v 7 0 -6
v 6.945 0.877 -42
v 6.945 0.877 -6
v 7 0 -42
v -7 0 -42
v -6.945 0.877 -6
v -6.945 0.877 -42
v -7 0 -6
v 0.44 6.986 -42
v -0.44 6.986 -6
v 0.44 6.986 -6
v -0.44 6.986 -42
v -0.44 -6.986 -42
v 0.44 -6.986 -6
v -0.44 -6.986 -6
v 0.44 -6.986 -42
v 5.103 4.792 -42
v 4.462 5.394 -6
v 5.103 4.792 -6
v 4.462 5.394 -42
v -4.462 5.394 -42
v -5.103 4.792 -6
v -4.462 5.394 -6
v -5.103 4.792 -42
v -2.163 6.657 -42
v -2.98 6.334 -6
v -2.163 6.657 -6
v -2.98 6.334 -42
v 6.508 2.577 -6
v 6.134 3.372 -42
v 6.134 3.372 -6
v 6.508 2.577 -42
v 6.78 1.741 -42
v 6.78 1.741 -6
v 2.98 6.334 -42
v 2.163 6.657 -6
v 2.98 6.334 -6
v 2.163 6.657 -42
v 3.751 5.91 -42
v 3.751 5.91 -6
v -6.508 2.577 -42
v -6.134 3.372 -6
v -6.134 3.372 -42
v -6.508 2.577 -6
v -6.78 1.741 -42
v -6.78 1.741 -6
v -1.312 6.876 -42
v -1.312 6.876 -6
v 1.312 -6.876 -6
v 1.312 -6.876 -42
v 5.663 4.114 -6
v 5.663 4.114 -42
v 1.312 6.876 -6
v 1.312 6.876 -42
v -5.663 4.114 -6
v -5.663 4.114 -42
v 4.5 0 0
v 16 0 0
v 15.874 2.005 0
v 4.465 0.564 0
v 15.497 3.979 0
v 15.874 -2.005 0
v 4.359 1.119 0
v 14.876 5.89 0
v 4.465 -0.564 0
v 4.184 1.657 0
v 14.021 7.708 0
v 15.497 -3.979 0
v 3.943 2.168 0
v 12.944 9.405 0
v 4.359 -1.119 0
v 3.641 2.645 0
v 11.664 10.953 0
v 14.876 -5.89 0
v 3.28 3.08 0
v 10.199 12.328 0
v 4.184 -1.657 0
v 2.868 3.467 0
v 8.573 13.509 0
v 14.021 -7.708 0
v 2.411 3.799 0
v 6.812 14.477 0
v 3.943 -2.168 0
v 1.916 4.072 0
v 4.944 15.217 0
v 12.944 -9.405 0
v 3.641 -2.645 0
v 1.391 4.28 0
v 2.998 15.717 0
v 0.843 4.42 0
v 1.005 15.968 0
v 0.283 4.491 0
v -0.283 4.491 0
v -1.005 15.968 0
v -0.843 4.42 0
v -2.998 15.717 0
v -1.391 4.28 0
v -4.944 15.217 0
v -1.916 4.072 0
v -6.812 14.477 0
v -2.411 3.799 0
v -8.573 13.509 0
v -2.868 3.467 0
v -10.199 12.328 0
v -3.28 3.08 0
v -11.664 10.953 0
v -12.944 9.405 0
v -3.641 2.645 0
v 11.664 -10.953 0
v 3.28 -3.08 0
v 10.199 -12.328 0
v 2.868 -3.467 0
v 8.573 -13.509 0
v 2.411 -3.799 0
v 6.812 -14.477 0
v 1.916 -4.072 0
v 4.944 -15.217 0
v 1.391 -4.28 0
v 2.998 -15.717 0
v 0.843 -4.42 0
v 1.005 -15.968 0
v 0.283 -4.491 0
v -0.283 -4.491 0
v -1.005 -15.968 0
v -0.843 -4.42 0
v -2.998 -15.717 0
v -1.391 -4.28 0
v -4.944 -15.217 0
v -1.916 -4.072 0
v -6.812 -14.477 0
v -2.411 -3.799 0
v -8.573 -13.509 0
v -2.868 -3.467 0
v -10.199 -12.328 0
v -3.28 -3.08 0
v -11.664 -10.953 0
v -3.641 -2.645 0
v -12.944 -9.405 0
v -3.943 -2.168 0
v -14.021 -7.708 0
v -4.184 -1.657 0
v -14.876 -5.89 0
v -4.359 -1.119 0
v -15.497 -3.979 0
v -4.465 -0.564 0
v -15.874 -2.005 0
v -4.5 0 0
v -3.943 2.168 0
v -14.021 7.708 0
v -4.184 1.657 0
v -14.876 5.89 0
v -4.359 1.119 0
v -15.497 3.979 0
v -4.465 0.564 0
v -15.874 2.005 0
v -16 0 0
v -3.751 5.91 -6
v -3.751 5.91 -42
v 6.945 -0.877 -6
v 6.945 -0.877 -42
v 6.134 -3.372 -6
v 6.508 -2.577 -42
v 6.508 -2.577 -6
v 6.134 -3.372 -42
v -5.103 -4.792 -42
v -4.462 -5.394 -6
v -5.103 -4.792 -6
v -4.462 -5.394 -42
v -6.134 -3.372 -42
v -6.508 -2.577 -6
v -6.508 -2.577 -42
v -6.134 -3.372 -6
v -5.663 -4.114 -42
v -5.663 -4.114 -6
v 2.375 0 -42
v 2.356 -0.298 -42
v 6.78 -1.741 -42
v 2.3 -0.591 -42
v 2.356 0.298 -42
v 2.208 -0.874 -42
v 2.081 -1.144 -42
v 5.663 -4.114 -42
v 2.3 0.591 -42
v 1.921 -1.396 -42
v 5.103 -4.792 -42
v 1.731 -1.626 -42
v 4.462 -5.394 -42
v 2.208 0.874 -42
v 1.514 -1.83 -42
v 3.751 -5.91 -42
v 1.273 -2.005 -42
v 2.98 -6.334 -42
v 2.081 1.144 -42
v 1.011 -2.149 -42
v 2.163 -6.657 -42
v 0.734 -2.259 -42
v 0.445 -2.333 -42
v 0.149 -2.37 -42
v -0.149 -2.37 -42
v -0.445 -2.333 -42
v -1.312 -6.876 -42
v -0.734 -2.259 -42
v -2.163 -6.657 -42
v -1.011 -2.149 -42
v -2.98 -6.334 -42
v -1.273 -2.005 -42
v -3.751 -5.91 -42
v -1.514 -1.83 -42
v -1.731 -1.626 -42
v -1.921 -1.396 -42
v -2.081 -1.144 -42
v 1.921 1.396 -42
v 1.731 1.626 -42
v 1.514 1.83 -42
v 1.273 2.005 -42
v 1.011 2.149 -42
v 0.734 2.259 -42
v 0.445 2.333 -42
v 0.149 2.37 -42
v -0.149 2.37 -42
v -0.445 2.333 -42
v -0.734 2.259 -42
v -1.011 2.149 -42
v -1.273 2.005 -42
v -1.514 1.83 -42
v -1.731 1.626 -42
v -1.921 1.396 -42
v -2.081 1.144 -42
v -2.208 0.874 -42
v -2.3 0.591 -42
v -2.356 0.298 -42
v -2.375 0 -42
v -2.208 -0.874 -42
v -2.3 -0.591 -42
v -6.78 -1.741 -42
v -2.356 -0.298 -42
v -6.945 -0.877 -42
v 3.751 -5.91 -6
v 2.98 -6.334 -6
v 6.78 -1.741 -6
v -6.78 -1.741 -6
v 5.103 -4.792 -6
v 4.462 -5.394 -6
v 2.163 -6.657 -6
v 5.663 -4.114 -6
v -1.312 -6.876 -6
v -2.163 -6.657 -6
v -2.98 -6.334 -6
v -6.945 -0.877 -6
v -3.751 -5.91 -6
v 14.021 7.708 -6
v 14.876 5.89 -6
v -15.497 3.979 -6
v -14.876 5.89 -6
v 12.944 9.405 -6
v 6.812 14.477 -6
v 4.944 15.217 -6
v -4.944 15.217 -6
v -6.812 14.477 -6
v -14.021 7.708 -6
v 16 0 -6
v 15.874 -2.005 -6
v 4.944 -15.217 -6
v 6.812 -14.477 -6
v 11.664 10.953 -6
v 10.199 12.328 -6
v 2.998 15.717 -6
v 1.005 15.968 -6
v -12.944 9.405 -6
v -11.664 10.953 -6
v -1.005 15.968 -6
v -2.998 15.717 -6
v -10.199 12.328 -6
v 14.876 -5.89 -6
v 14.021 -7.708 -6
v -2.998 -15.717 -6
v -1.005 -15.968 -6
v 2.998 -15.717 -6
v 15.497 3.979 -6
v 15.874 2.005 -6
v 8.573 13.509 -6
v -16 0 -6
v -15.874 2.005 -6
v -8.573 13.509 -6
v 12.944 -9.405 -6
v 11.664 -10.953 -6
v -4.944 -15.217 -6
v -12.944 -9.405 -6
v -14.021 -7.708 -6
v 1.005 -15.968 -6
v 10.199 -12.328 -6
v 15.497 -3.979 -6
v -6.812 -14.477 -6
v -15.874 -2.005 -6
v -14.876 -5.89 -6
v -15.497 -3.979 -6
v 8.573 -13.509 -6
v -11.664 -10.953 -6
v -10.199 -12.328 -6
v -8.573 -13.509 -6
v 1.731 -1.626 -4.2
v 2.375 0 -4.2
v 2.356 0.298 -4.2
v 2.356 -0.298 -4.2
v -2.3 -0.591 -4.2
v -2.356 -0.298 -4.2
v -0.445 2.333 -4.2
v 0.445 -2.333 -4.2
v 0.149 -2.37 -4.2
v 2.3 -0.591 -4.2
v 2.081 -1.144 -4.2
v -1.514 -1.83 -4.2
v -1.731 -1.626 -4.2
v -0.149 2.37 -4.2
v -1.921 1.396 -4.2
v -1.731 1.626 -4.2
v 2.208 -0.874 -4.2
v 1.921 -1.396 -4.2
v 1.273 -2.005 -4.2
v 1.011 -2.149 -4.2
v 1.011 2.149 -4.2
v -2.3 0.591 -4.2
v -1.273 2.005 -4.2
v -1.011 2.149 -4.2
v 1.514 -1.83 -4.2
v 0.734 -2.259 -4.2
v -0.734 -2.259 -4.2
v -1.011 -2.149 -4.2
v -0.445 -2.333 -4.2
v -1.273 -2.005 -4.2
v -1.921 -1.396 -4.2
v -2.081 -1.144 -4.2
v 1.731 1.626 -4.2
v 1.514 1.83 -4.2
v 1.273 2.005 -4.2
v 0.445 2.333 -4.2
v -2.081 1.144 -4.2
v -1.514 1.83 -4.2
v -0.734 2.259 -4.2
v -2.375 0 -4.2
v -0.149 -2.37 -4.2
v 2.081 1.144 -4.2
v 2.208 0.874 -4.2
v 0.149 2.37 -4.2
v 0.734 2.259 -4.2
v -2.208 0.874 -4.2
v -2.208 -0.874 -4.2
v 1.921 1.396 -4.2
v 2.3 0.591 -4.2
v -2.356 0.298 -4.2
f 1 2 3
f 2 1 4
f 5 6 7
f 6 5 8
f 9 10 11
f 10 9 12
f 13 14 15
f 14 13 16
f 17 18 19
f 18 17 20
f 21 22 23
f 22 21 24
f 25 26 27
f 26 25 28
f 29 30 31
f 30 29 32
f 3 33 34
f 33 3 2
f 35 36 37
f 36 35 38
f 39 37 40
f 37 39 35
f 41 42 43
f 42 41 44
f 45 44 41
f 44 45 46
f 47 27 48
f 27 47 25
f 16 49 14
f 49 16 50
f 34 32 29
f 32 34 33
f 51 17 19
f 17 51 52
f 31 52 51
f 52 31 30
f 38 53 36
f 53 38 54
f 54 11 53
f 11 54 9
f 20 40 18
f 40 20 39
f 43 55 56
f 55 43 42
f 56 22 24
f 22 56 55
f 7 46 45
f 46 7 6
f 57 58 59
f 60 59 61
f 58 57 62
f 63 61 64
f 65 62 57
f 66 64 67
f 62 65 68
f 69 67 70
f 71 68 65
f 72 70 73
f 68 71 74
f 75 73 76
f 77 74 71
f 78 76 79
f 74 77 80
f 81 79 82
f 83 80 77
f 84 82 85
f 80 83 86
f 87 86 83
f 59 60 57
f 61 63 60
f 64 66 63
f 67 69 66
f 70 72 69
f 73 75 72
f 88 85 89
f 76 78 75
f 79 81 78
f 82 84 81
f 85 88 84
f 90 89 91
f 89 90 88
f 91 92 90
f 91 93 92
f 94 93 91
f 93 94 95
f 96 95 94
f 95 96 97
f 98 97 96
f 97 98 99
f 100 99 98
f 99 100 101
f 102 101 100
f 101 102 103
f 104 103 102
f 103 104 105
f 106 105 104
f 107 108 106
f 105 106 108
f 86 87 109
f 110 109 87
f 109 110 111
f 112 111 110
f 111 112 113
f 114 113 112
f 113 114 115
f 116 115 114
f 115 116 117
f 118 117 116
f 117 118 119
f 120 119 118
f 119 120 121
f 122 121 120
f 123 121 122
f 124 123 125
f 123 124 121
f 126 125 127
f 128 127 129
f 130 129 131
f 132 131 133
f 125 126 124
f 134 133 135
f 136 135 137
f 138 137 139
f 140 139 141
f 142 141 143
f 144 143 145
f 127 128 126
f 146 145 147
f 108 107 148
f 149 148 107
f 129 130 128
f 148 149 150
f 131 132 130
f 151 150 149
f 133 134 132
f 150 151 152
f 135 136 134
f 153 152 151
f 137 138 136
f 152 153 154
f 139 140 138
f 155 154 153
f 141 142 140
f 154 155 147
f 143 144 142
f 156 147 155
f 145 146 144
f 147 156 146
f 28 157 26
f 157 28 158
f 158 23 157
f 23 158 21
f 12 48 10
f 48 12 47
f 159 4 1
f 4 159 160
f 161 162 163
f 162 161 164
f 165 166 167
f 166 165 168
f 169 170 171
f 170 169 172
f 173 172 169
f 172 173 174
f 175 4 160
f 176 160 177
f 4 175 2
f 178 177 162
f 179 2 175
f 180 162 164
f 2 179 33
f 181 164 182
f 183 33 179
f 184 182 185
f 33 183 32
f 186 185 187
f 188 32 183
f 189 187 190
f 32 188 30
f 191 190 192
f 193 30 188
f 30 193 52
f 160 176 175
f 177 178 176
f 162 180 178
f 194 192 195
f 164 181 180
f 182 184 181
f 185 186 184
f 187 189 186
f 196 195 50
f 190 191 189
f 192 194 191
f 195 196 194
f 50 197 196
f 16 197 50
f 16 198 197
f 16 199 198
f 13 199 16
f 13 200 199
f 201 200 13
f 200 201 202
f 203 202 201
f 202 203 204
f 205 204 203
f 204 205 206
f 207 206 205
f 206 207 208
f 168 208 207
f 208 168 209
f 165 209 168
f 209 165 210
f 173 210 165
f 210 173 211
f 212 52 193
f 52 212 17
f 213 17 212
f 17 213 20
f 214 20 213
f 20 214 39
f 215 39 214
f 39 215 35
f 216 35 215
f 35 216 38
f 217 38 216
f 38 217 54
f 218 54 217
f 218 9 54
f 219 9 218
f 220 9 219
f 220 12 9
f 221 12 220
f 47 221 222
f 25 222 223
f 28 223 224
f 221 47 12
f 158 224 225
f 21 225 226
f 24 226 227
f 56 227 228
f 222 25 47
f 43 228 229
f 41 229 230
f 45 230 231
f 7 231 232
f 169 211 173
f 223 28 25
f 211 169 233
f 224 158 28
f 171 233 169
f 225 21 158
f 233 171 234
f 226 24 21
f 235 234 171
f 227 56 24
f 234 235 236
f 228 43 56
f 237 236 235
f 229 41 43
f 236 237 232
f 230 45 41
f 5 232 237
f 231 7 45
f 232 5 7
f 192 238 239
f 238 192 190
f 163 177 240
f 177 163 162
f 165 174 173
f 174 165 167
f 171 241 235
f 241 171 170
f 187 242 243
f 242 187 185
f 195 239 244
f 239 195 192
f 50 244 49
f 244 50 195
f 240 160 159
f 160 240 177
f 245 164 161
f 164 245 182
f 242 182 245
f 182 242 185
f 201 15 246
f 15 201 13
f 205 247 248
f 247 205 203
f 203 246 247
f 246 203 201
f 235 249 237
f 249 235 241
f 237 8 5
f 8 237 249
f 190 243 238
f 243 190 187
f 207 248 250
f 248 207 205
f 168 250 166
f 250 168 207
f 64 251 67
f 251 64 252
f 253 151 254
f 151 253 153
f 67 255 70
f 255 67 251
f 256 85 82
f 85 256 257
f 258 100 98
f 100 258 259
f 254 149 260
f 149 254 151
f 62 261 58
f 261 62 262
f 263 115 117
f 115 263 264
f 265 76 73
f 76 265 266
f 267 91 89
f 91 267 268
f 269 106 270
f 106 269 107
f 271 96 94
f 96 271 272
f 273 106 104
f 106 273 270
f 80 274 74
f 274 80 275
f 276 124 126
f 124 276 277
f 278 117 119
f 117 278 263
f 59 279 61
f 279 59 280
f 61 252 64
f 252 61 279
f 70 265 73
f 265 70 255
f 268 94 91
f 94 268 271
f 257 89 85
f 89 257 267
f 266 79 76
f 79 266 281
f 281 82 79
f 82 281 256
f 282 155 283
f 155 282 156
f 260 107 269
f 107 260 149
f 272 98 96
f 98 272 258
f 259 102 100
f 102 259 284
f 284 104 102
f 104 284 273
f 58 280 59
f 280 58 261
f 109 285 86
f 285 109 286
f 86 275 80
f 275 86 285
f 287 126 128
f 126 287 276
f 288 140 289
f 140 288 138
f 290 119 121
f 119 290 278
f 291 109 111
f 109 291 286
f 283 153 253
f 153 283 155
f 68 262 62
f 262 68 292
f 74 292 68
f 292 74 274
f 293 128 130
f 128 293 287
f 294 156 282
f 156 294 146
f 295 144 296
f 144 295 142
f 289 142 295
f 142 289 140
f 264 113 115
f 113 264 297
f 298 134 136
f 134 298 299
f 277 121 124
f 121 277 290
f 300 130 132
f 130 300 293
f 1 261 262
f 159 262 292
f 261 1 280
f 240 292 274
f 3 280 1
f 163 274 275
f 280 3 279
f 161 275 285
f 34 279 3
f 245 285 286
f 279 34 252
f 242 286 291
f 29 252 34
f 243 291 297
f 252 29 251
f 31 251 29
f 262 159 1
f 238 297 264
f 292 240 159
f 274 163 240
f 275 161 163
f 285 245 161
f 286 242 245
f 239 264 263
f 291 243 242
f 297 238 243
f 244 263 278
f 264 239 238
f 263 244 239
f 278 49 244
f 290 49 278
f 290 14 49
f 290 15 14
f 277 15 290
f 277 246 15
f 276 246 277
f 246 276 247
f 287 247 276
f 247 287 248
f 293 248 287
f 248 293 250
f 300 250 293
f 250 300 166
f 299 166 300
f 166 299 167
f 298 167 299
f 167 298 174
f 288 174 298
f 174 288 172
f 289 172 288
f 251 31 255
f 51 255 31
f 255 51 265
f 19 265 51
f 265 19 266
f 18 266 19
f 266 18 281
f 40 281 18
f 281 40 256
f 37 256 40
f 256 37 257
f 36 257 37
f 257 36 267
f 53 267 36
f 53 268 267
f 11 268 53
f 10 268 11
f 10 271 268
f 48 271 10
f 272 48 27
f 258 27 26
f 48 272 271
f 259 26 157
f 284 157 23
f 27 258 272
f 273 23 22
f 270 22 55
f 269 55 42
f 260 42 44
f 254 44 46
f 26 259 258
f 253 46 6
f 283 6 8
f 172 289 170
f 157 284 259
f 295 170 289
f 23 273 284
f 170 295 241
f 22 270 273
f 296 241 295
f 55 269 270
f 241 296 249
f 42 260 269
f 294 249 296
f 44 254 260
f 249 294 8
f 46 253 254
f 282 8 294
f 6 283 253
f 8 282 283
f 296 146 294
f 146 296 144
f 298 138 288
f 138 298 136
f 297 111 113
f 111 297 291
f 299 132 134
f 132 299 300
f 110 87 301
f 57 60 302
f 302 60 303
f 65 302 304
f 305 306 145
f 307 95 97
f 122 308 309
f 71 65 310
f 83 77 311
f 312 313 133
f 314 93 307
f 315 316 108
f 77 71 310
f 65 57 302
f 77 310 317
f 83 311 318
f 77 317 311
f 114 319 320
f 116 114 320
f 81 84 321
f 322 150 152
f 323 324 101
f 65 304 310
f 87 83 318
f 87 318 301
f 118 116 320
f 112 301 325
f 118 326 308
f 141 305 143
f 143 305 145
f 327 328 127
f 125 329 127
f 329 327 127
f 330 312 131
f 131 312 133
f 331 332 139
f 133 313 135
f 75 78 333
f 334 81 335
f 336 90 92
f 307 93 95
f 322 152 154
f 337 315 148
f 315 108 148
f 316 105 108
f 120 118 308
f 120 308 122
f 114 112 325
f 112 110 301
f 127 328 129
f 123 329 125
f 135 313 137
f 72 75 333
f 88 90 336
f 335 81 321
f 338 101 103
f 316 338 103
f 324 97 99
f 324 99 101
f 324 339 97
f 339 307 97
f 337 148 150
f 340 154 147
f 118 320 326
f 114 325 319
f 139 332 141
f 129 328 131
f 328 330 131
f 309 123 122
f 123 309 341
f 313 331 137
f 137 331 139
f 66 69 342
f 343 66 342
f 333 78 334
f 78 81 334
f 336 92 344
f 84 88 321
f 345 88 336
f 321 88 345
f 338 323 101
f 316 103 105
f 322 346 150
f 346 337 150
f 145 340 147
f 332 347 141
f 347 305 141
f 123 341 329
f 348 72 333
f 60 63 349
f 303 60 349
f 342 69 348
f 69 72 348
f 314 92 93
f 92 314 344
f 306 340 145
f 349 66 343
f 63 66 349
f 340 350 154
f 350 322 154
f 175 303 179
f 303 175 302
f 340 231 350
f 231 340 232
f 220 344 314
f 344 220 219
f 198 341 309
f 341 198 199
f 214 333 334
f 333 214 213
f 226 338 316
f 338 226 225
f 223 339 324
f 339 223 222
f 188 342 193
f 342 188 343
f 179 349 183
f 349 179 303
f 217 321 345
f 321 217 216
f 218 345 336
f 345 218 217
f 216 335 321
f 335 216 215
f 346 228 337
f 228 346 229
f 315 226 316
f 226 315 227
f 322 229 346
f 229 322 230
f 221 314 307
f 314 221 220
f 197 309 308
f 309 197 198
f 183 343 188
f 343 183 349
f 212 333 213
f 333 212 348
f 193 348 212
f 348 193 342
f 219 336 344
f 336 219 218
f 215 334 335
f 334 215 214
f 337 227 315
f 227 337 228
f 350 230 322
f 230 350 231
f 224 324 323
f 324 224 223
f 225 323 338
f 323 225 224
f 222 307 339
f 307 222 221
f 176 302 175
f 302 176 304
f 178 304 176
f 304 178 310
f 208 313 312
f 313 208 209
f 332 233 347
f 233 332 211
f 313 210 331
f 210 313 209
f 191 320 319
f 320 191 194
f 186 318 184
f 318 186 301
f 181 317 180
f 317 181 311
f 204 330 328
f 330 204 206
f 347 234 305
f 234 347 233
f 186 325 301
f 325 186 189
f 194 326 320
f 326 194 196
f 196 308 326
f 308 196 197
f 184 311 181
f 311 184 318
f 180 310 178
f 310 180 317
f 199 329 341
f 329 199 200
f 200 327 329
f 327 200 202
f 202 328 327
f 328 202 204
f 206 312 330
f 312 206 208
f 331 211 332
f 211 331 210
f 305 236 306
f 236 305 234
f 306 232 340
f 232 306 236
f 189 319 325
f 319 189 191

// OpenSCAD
$fn = 50;


difference() {
	union() {
		translate(v = [0, 0, -42.0000000000]) {
			cylinder(h = 42, r = 7.0000000000);
		}
		translate(v = [0, 0, -6.0000000000]) {
			cylinder(h = 6, r = 16.0000000000);
		}
	}
	union() {
		translate(v = [0, 0, 0]) {
			rotate(a = [0, 0, 0]) {
				difference() {
					union() {
						#translate(v = [0, 0, -42.0000000000]) {
							cylinder(h = 42, r = 2.2500000000);
						}
						#translate(v = [0, 0, -4.2000000000]) {
							cylinder(h = 4.2000000000, r1 = 2.3750000000, r2 = 4.5000000000);
						}
						#translate(v = [0, 0, -42.0000000000]) {
							cylinder(h = 42, r = 2.3750000000);
						}
						#translate(v = [0, 0, -42.0000000000]) {
							cylinder(h = 42, r = 2.2500000000);
						}
					}
					union();
				}
			}
		}
	}
}
